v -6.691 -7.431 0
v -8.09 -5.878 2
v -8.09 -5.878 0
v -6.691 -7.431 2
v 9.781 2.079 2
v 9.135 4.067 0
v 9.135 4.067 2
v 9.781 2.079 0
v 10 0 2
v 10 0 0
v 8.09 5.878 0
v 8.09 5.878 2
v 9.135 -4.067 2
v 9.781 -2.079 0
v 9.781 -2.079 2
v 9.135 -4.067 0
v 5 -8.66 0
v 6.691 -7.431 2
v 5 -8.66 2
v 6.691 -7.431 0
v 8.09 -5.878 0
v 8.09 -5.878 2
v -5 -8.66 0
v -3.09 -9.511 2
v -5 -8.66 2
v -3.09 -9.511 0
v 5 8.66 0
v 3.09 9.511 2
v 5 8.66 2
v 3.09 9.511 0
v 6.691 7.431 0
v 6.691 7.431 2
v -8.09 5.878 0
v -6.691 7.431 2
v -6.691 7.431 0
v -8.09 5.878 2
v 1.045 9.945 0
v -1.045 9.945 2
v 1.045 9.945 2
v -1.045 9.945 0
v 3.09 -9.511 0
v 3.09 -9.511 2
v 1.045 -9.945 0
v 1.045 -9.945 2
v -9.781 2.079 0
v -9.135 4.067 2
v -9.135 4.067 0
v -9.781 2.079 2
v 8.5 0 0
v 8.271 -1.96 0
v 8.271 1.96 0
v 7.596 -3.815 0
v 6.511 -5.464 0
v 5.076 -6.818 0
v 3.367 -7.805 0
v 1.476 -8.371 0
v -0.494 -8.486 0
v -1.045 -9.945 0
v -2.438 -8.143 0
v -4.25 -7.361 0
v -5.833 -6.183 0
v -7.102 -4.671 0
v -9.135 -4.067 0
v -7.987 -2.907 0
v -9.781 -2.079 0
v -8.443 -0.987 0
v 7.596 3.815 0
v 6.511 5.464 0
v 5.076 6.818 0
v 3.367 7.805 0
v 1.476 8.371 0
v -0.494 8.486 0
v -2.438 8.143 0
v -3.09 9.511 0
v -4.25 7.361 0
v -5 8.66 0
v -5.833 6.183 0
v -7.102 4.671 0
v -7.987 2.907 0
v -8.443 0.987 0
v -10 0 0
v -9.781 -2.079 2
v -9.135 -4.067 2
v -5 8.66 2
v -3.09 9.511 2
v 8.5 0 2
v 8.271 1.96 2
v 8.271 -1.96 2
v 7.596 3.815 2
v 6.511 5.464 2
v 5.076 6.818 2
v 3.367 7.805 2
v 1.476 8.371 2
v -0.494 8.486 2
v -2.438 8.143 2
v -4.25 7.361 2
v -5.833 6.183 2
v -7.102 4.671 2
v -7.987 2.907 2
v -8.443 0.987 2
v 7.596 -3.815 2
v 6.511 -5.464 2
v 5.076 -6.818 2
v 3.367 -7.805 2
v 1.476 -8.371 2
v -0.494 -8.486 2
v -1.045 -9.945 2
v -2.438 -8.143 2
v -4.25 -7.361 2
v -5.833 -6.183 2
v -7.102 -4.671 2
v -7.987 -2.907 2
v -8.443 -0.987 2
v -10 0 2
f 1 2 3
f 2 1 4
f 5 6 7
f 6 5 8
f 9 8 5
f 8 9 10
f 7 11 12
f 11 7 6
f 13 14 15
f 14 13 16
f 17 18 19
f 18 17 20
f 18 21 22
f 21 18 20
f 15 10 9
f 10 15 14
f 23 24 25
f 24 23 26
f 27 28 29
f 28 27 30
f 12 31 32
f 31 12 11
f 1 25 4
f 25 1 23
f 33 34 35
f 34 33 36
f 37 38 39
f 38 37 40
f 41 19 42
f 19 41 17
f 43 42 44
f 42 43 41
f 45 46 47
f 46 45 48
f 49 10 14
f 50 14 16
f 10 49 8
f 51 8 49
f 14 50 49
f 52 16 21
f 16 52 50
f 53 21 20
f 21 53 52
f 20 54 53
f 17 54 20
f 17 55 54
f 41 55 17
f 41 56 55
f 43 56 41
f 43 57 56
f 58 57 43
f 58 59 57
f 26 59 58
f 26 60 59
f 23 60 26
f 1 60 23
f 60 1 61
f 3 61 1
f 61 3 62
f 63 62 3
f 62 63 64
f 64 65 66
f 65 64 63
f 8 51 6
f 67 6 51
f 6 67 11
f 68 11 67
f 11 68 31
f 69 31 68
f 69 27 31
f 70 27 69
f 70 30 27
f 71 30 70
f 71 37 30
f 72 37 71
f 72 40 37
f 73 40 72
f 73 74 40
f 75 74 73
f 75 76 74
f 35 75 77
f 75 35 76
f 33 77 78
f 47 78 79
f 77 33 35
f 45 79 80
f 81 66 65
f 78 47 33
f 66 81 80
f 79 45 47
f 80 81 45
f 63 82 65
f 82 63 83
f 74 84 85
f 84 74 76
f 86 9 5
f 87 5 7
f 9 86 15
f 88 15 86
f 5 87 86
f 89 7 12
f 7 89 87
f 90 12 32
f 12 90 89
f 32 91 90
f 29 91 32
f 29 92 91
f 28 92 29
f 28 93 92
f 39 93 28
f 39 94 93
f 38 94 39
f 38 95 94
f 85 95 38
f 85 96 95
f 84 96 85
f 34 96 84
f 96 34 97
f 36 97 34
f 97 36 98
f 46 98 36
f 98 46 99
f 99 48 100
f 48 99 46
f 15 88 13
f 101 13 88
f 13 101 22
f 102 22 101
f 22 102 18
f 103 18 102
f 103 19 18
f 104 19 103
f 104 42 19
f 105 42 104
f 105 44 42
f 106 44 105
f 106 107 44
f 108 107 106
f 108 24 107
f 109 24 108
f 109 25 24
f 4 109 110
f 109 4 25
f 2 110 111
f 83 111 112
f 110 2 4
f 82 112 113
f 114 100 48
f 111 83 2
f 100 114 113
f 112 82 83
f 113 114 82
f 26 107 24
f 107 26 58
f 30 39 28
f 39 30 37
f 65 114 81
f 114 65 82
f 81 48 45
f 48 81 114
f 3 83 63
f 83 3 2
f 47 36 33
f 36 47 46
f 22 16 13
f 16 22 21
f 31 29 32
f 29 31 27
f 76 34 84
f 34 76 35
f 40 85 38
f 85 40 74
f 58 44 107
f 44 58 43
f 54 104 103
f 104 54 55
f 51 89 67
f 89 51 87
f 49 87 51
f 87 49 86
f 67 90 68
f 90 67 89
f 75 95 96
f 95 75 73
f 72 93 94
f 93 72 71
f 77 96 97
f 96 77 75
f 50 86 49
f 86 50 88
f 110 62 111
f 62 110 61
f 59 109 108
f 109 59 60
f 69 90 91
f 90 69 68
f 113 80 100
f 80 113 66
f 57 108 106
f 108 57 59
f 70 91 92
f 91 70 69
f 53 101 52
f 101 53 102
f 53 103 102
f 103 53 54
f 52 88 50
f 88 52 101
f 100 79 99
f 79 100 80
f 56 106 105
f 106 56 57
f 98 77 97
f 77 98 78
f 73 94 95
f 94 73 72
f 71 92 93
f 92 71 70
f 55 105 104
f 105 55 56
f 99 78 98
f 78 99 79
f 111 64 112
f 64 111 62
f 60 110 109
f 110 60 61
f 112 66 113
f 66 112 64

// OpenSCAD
difference(){
    union(){
            
        translate([0, 0, 1])
        cylinder(h=2, r=20/2, center=true);
    }
    
    cylinder(h=8, r=17/2, center=true);
}
